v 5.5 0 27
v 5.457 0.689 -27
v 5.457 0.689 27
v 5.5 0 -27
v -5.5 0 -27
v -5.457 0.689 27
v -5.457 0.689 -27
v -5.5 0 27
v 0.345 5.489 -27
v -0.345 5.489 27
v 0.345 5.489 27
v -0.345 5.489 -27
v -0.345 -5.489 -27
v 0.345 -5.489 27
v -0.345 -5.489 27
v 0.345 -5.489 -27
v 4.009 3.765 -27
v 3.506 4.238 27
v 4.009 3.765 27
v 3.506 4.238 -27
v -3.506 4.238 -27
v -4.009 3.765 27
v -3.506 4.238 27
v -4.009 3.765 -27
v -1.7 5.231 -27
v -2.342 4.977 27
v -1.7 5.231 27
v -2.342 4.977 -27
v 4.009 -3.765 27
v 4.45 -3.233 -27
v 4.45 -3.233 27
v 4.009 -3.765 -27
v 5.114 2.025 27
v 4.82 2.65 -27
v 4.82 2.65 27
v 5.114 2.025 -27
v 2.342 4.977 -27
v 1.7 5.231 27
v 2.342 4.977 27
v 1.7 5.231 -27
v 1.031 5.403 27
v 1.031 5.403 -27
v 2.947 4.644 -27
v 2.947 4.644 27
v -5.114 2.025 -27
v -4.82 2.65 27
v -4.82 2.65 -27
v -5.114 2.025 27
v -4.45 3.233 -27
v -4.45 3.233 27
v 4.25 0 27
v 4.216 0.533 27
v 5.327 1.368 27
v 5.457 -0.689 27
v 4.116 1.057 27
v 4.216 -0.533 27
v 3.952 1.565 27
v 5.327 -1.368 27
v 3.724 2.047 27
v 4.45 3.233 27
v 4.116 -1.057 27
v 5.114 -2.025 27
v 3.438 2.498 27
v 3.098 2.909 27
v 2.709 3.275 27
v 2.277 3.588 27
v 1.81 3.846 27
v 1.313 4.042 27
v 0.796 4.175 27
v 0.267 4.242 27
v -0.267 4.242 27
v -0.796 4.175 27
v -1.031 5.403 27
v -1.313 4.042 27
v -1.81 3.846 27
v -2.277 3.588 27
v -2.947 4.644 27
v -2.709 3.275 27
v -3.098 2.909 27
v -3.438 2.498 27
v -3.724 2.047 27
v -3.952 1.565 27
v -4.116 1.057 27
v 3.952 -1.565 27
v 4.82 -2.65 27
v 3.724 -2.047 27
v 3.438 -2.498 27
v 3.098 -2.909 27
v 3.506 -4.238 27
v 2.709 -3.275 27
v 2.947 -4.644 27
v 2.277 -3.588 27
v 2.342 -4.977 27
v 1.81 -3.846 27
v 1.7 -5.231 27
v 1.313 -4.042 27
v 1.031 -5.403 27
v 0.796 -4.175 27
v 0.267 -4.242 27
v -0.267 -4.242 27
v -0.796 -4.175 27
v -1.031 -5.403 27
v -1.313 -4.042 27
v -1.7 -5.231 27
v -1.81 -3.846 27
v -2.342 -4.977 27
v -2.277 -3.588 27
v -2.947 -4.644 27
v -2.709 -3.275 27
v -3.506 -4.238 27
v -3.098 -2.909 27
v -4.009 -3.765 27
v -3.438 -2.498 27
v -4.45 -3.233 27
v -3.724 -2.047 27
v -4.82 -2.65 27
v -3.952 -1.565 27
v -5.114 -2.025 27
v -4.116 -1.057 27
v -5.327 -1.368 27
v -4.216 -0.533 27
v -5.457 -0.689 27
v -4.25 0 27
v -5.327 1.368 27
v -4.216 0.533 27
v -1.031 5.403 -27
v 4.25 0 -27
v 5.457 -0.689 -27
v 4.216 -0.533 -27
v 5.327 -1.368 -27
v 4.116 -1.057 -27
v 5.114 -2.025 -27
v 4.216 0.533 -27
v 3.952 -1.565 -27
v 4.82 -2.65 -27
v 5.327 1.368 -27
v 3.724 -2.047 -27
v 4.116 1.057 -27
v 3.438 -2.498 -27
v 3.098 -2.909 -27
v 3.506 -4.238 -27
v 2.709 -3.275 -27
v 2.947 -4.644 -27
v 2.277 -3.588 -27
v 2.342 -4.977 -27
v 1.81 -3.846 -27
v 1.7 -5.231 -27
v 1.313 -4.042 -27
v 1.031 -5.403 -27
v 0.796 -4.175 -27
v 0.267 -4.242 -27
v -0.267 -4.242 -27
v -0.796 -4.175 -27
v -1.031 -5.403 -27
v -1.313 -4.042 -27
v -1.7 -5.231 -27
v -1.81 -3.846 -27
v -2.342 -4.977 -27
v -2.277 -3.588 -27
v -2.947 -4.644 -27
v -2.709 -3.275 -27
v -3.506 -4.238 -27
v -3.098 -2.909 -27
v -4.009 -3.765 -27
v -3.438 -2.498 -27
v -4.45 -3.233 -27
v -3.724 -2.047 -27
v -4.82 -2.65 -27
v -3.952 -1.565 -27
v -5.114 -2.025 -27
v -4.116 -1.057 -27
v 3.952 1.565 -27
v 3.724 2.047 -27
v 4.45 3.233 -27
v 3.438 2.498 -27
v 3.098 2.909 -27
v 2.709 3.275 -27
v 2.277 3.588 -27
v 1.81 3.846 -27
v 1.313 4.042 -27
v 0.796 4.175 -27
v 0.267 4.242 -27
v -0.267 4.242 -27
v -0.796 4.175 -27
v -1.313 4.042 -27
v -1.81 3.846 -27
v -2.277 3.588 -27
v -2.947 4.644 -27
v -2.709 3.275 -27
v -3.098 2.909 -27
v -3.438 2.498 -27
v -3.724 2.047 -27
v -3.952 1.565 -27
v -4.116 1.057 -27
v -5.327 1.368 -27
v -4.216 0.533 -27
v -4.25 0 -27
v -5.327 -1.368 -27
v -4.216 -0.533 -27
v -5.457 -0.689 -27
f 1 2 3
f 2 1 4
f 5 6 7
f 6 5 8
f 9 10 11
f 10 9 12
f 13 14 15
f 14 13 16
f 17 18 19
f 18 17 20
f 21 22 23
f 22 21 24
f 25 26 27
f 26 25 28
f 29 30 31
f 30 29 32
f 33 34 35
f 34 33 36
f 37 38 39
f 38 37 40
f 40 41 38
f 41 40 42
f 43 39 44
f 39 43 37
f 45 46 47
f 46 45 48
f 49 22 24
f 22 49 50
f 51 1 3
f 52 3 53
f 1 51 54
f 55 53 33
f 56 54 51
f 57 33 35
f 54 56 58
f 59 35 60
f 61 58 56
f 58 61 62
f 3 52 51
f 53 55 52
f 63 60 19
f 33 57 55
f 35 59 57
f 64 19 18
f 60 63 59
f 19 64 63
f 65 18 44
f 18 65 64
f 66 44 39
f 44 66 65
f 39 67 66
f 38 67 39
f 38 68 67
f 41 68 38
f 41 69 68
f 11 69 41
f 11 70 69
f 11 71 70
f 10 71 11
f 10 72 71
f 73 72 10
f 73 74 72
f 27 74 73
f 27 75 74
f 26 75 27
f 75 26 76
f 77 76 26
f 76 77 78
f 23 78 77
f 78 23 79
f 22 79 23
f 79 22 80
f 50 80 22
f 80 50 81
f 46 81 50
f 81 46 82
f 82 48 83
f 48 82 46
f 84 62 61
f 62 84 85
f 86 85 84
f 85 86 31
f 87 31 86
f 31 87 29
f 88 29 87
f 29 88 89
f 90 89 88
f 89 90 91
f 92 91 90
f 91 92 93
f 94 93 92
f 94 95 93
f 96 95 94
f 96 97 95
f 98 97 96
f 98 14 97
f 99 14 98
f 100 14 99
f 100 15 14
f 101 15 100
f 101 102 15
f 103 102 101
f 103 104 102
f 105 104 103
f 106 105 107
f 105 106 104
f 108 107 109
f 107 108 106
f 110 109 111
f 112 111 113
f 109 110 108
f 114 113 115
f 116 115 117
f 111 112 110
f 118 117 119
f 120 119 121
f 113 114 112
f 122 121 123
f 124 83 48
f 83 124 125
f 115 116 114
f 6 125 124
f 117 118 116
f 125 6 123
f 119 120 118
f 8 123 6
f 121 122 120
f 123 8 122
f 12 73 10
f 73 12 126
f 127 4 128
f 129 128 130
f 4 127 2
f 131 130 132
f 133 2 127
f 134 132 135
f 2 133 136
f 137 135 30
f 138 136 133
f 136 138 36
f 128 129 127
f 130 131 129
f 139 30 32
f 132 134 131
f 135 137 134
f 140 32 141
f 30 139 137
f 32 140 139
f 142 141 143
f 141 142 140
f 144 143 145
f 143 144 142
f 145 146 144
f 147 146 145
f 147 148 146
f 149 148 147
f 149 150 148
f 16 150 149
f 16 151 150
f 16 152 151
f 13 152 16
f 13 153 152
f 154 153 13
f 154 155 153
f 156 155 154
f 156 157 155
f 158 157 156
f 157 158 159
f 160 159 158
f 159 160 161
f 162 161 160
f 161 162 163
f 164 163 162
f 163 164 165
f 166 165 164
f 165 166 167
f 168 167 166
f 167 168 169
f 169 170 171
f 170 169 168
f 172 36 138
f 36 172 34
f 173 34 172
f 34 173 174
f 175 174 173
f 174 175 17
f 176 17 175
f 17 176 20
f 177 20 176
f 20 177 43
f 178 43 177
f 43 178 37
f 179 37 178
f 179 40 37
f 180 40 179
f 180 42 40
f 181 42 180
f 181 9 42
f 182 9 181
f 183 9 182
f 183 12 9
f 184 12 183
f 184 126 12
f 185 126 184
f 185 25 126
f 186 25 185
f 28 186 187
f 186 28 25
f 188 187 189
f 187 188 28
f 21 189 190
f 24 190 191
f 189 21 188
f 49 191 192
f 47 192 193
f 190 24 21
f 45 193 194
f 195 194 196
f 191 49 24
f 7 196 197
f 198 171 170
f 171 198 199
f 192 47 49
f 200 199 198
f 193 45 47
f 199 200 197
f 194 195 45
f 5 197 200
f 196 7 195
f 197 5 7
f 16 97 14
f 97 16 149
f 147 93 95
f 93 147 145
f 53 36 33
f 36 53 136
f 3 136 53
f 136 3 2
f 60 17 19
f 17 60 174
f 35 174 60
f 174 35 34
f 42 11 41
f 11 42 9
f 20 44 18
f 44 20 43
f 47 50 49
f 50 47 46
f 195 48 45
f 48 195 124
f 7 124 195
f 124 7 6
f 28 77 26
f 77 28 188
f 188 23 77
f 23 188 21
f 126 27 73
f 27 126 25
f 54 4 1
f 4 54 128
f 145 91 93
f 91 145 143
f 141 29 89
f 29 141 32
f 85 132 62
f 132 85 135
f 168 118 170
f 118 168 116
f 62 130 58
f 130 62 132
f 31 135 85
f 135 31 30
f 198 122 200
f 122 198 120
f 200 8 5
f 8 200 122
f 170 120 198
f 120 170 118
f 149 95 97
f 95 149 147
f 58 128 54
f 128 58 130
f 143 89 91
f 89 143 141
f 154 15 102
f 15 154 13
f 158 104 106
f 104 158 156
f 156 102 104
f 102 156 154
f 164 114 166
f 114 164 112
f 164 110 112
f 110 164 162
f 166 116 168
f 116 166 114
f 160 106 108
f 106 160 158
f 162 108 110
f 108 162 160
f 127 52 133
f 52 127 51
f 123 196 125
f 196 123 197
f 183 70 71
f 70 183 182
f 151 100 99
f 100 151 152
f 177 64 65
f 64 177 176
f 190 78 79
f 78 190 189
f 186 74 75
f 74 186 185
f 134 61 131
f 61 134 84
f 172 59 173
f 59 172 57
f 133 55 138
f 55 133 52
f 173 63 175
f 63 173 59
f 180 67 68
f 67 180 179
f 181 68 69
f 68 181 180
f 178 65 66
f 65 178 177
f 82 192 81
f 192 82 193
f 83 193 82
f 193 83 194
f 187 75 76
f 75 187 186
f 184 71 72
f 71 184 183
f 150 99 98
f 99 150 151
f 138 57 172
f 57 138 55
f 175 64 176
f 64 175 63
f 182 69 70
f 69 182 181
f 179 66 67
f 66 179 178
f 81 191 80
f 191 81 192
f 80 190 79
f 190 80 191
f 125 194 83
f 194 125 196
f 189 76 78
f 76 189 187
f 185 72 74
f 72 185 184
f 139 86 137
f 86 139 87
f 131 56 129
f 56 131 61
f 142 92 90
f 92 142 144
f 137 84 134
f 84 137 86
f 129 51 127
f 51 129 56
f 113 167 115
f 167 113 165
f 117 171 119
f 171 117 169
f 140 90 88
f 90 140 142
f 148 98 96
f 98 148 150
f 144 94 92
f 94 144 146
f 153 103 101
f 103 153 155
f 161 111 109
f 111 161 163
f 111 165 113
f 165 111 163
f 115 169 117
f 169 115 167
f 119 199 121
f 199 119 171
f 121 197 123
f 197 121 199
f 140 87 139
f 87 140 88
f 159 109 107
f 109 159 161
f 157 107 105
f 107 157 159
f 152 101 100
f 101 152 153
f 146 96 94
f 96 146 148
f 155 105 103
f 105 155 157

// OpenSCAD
$fn = 50;


difference() {
	union() {
		translate(v = [0, 0, -27.0000000000]) {
			cylinder(h = 54, r = 5.5000000000);
		}
	}
	union() {
		translate(v = [0, 0, -100.0000000000]) {
			cylinder(h = 200, r = 4.2500000000);
		}
	}
}
